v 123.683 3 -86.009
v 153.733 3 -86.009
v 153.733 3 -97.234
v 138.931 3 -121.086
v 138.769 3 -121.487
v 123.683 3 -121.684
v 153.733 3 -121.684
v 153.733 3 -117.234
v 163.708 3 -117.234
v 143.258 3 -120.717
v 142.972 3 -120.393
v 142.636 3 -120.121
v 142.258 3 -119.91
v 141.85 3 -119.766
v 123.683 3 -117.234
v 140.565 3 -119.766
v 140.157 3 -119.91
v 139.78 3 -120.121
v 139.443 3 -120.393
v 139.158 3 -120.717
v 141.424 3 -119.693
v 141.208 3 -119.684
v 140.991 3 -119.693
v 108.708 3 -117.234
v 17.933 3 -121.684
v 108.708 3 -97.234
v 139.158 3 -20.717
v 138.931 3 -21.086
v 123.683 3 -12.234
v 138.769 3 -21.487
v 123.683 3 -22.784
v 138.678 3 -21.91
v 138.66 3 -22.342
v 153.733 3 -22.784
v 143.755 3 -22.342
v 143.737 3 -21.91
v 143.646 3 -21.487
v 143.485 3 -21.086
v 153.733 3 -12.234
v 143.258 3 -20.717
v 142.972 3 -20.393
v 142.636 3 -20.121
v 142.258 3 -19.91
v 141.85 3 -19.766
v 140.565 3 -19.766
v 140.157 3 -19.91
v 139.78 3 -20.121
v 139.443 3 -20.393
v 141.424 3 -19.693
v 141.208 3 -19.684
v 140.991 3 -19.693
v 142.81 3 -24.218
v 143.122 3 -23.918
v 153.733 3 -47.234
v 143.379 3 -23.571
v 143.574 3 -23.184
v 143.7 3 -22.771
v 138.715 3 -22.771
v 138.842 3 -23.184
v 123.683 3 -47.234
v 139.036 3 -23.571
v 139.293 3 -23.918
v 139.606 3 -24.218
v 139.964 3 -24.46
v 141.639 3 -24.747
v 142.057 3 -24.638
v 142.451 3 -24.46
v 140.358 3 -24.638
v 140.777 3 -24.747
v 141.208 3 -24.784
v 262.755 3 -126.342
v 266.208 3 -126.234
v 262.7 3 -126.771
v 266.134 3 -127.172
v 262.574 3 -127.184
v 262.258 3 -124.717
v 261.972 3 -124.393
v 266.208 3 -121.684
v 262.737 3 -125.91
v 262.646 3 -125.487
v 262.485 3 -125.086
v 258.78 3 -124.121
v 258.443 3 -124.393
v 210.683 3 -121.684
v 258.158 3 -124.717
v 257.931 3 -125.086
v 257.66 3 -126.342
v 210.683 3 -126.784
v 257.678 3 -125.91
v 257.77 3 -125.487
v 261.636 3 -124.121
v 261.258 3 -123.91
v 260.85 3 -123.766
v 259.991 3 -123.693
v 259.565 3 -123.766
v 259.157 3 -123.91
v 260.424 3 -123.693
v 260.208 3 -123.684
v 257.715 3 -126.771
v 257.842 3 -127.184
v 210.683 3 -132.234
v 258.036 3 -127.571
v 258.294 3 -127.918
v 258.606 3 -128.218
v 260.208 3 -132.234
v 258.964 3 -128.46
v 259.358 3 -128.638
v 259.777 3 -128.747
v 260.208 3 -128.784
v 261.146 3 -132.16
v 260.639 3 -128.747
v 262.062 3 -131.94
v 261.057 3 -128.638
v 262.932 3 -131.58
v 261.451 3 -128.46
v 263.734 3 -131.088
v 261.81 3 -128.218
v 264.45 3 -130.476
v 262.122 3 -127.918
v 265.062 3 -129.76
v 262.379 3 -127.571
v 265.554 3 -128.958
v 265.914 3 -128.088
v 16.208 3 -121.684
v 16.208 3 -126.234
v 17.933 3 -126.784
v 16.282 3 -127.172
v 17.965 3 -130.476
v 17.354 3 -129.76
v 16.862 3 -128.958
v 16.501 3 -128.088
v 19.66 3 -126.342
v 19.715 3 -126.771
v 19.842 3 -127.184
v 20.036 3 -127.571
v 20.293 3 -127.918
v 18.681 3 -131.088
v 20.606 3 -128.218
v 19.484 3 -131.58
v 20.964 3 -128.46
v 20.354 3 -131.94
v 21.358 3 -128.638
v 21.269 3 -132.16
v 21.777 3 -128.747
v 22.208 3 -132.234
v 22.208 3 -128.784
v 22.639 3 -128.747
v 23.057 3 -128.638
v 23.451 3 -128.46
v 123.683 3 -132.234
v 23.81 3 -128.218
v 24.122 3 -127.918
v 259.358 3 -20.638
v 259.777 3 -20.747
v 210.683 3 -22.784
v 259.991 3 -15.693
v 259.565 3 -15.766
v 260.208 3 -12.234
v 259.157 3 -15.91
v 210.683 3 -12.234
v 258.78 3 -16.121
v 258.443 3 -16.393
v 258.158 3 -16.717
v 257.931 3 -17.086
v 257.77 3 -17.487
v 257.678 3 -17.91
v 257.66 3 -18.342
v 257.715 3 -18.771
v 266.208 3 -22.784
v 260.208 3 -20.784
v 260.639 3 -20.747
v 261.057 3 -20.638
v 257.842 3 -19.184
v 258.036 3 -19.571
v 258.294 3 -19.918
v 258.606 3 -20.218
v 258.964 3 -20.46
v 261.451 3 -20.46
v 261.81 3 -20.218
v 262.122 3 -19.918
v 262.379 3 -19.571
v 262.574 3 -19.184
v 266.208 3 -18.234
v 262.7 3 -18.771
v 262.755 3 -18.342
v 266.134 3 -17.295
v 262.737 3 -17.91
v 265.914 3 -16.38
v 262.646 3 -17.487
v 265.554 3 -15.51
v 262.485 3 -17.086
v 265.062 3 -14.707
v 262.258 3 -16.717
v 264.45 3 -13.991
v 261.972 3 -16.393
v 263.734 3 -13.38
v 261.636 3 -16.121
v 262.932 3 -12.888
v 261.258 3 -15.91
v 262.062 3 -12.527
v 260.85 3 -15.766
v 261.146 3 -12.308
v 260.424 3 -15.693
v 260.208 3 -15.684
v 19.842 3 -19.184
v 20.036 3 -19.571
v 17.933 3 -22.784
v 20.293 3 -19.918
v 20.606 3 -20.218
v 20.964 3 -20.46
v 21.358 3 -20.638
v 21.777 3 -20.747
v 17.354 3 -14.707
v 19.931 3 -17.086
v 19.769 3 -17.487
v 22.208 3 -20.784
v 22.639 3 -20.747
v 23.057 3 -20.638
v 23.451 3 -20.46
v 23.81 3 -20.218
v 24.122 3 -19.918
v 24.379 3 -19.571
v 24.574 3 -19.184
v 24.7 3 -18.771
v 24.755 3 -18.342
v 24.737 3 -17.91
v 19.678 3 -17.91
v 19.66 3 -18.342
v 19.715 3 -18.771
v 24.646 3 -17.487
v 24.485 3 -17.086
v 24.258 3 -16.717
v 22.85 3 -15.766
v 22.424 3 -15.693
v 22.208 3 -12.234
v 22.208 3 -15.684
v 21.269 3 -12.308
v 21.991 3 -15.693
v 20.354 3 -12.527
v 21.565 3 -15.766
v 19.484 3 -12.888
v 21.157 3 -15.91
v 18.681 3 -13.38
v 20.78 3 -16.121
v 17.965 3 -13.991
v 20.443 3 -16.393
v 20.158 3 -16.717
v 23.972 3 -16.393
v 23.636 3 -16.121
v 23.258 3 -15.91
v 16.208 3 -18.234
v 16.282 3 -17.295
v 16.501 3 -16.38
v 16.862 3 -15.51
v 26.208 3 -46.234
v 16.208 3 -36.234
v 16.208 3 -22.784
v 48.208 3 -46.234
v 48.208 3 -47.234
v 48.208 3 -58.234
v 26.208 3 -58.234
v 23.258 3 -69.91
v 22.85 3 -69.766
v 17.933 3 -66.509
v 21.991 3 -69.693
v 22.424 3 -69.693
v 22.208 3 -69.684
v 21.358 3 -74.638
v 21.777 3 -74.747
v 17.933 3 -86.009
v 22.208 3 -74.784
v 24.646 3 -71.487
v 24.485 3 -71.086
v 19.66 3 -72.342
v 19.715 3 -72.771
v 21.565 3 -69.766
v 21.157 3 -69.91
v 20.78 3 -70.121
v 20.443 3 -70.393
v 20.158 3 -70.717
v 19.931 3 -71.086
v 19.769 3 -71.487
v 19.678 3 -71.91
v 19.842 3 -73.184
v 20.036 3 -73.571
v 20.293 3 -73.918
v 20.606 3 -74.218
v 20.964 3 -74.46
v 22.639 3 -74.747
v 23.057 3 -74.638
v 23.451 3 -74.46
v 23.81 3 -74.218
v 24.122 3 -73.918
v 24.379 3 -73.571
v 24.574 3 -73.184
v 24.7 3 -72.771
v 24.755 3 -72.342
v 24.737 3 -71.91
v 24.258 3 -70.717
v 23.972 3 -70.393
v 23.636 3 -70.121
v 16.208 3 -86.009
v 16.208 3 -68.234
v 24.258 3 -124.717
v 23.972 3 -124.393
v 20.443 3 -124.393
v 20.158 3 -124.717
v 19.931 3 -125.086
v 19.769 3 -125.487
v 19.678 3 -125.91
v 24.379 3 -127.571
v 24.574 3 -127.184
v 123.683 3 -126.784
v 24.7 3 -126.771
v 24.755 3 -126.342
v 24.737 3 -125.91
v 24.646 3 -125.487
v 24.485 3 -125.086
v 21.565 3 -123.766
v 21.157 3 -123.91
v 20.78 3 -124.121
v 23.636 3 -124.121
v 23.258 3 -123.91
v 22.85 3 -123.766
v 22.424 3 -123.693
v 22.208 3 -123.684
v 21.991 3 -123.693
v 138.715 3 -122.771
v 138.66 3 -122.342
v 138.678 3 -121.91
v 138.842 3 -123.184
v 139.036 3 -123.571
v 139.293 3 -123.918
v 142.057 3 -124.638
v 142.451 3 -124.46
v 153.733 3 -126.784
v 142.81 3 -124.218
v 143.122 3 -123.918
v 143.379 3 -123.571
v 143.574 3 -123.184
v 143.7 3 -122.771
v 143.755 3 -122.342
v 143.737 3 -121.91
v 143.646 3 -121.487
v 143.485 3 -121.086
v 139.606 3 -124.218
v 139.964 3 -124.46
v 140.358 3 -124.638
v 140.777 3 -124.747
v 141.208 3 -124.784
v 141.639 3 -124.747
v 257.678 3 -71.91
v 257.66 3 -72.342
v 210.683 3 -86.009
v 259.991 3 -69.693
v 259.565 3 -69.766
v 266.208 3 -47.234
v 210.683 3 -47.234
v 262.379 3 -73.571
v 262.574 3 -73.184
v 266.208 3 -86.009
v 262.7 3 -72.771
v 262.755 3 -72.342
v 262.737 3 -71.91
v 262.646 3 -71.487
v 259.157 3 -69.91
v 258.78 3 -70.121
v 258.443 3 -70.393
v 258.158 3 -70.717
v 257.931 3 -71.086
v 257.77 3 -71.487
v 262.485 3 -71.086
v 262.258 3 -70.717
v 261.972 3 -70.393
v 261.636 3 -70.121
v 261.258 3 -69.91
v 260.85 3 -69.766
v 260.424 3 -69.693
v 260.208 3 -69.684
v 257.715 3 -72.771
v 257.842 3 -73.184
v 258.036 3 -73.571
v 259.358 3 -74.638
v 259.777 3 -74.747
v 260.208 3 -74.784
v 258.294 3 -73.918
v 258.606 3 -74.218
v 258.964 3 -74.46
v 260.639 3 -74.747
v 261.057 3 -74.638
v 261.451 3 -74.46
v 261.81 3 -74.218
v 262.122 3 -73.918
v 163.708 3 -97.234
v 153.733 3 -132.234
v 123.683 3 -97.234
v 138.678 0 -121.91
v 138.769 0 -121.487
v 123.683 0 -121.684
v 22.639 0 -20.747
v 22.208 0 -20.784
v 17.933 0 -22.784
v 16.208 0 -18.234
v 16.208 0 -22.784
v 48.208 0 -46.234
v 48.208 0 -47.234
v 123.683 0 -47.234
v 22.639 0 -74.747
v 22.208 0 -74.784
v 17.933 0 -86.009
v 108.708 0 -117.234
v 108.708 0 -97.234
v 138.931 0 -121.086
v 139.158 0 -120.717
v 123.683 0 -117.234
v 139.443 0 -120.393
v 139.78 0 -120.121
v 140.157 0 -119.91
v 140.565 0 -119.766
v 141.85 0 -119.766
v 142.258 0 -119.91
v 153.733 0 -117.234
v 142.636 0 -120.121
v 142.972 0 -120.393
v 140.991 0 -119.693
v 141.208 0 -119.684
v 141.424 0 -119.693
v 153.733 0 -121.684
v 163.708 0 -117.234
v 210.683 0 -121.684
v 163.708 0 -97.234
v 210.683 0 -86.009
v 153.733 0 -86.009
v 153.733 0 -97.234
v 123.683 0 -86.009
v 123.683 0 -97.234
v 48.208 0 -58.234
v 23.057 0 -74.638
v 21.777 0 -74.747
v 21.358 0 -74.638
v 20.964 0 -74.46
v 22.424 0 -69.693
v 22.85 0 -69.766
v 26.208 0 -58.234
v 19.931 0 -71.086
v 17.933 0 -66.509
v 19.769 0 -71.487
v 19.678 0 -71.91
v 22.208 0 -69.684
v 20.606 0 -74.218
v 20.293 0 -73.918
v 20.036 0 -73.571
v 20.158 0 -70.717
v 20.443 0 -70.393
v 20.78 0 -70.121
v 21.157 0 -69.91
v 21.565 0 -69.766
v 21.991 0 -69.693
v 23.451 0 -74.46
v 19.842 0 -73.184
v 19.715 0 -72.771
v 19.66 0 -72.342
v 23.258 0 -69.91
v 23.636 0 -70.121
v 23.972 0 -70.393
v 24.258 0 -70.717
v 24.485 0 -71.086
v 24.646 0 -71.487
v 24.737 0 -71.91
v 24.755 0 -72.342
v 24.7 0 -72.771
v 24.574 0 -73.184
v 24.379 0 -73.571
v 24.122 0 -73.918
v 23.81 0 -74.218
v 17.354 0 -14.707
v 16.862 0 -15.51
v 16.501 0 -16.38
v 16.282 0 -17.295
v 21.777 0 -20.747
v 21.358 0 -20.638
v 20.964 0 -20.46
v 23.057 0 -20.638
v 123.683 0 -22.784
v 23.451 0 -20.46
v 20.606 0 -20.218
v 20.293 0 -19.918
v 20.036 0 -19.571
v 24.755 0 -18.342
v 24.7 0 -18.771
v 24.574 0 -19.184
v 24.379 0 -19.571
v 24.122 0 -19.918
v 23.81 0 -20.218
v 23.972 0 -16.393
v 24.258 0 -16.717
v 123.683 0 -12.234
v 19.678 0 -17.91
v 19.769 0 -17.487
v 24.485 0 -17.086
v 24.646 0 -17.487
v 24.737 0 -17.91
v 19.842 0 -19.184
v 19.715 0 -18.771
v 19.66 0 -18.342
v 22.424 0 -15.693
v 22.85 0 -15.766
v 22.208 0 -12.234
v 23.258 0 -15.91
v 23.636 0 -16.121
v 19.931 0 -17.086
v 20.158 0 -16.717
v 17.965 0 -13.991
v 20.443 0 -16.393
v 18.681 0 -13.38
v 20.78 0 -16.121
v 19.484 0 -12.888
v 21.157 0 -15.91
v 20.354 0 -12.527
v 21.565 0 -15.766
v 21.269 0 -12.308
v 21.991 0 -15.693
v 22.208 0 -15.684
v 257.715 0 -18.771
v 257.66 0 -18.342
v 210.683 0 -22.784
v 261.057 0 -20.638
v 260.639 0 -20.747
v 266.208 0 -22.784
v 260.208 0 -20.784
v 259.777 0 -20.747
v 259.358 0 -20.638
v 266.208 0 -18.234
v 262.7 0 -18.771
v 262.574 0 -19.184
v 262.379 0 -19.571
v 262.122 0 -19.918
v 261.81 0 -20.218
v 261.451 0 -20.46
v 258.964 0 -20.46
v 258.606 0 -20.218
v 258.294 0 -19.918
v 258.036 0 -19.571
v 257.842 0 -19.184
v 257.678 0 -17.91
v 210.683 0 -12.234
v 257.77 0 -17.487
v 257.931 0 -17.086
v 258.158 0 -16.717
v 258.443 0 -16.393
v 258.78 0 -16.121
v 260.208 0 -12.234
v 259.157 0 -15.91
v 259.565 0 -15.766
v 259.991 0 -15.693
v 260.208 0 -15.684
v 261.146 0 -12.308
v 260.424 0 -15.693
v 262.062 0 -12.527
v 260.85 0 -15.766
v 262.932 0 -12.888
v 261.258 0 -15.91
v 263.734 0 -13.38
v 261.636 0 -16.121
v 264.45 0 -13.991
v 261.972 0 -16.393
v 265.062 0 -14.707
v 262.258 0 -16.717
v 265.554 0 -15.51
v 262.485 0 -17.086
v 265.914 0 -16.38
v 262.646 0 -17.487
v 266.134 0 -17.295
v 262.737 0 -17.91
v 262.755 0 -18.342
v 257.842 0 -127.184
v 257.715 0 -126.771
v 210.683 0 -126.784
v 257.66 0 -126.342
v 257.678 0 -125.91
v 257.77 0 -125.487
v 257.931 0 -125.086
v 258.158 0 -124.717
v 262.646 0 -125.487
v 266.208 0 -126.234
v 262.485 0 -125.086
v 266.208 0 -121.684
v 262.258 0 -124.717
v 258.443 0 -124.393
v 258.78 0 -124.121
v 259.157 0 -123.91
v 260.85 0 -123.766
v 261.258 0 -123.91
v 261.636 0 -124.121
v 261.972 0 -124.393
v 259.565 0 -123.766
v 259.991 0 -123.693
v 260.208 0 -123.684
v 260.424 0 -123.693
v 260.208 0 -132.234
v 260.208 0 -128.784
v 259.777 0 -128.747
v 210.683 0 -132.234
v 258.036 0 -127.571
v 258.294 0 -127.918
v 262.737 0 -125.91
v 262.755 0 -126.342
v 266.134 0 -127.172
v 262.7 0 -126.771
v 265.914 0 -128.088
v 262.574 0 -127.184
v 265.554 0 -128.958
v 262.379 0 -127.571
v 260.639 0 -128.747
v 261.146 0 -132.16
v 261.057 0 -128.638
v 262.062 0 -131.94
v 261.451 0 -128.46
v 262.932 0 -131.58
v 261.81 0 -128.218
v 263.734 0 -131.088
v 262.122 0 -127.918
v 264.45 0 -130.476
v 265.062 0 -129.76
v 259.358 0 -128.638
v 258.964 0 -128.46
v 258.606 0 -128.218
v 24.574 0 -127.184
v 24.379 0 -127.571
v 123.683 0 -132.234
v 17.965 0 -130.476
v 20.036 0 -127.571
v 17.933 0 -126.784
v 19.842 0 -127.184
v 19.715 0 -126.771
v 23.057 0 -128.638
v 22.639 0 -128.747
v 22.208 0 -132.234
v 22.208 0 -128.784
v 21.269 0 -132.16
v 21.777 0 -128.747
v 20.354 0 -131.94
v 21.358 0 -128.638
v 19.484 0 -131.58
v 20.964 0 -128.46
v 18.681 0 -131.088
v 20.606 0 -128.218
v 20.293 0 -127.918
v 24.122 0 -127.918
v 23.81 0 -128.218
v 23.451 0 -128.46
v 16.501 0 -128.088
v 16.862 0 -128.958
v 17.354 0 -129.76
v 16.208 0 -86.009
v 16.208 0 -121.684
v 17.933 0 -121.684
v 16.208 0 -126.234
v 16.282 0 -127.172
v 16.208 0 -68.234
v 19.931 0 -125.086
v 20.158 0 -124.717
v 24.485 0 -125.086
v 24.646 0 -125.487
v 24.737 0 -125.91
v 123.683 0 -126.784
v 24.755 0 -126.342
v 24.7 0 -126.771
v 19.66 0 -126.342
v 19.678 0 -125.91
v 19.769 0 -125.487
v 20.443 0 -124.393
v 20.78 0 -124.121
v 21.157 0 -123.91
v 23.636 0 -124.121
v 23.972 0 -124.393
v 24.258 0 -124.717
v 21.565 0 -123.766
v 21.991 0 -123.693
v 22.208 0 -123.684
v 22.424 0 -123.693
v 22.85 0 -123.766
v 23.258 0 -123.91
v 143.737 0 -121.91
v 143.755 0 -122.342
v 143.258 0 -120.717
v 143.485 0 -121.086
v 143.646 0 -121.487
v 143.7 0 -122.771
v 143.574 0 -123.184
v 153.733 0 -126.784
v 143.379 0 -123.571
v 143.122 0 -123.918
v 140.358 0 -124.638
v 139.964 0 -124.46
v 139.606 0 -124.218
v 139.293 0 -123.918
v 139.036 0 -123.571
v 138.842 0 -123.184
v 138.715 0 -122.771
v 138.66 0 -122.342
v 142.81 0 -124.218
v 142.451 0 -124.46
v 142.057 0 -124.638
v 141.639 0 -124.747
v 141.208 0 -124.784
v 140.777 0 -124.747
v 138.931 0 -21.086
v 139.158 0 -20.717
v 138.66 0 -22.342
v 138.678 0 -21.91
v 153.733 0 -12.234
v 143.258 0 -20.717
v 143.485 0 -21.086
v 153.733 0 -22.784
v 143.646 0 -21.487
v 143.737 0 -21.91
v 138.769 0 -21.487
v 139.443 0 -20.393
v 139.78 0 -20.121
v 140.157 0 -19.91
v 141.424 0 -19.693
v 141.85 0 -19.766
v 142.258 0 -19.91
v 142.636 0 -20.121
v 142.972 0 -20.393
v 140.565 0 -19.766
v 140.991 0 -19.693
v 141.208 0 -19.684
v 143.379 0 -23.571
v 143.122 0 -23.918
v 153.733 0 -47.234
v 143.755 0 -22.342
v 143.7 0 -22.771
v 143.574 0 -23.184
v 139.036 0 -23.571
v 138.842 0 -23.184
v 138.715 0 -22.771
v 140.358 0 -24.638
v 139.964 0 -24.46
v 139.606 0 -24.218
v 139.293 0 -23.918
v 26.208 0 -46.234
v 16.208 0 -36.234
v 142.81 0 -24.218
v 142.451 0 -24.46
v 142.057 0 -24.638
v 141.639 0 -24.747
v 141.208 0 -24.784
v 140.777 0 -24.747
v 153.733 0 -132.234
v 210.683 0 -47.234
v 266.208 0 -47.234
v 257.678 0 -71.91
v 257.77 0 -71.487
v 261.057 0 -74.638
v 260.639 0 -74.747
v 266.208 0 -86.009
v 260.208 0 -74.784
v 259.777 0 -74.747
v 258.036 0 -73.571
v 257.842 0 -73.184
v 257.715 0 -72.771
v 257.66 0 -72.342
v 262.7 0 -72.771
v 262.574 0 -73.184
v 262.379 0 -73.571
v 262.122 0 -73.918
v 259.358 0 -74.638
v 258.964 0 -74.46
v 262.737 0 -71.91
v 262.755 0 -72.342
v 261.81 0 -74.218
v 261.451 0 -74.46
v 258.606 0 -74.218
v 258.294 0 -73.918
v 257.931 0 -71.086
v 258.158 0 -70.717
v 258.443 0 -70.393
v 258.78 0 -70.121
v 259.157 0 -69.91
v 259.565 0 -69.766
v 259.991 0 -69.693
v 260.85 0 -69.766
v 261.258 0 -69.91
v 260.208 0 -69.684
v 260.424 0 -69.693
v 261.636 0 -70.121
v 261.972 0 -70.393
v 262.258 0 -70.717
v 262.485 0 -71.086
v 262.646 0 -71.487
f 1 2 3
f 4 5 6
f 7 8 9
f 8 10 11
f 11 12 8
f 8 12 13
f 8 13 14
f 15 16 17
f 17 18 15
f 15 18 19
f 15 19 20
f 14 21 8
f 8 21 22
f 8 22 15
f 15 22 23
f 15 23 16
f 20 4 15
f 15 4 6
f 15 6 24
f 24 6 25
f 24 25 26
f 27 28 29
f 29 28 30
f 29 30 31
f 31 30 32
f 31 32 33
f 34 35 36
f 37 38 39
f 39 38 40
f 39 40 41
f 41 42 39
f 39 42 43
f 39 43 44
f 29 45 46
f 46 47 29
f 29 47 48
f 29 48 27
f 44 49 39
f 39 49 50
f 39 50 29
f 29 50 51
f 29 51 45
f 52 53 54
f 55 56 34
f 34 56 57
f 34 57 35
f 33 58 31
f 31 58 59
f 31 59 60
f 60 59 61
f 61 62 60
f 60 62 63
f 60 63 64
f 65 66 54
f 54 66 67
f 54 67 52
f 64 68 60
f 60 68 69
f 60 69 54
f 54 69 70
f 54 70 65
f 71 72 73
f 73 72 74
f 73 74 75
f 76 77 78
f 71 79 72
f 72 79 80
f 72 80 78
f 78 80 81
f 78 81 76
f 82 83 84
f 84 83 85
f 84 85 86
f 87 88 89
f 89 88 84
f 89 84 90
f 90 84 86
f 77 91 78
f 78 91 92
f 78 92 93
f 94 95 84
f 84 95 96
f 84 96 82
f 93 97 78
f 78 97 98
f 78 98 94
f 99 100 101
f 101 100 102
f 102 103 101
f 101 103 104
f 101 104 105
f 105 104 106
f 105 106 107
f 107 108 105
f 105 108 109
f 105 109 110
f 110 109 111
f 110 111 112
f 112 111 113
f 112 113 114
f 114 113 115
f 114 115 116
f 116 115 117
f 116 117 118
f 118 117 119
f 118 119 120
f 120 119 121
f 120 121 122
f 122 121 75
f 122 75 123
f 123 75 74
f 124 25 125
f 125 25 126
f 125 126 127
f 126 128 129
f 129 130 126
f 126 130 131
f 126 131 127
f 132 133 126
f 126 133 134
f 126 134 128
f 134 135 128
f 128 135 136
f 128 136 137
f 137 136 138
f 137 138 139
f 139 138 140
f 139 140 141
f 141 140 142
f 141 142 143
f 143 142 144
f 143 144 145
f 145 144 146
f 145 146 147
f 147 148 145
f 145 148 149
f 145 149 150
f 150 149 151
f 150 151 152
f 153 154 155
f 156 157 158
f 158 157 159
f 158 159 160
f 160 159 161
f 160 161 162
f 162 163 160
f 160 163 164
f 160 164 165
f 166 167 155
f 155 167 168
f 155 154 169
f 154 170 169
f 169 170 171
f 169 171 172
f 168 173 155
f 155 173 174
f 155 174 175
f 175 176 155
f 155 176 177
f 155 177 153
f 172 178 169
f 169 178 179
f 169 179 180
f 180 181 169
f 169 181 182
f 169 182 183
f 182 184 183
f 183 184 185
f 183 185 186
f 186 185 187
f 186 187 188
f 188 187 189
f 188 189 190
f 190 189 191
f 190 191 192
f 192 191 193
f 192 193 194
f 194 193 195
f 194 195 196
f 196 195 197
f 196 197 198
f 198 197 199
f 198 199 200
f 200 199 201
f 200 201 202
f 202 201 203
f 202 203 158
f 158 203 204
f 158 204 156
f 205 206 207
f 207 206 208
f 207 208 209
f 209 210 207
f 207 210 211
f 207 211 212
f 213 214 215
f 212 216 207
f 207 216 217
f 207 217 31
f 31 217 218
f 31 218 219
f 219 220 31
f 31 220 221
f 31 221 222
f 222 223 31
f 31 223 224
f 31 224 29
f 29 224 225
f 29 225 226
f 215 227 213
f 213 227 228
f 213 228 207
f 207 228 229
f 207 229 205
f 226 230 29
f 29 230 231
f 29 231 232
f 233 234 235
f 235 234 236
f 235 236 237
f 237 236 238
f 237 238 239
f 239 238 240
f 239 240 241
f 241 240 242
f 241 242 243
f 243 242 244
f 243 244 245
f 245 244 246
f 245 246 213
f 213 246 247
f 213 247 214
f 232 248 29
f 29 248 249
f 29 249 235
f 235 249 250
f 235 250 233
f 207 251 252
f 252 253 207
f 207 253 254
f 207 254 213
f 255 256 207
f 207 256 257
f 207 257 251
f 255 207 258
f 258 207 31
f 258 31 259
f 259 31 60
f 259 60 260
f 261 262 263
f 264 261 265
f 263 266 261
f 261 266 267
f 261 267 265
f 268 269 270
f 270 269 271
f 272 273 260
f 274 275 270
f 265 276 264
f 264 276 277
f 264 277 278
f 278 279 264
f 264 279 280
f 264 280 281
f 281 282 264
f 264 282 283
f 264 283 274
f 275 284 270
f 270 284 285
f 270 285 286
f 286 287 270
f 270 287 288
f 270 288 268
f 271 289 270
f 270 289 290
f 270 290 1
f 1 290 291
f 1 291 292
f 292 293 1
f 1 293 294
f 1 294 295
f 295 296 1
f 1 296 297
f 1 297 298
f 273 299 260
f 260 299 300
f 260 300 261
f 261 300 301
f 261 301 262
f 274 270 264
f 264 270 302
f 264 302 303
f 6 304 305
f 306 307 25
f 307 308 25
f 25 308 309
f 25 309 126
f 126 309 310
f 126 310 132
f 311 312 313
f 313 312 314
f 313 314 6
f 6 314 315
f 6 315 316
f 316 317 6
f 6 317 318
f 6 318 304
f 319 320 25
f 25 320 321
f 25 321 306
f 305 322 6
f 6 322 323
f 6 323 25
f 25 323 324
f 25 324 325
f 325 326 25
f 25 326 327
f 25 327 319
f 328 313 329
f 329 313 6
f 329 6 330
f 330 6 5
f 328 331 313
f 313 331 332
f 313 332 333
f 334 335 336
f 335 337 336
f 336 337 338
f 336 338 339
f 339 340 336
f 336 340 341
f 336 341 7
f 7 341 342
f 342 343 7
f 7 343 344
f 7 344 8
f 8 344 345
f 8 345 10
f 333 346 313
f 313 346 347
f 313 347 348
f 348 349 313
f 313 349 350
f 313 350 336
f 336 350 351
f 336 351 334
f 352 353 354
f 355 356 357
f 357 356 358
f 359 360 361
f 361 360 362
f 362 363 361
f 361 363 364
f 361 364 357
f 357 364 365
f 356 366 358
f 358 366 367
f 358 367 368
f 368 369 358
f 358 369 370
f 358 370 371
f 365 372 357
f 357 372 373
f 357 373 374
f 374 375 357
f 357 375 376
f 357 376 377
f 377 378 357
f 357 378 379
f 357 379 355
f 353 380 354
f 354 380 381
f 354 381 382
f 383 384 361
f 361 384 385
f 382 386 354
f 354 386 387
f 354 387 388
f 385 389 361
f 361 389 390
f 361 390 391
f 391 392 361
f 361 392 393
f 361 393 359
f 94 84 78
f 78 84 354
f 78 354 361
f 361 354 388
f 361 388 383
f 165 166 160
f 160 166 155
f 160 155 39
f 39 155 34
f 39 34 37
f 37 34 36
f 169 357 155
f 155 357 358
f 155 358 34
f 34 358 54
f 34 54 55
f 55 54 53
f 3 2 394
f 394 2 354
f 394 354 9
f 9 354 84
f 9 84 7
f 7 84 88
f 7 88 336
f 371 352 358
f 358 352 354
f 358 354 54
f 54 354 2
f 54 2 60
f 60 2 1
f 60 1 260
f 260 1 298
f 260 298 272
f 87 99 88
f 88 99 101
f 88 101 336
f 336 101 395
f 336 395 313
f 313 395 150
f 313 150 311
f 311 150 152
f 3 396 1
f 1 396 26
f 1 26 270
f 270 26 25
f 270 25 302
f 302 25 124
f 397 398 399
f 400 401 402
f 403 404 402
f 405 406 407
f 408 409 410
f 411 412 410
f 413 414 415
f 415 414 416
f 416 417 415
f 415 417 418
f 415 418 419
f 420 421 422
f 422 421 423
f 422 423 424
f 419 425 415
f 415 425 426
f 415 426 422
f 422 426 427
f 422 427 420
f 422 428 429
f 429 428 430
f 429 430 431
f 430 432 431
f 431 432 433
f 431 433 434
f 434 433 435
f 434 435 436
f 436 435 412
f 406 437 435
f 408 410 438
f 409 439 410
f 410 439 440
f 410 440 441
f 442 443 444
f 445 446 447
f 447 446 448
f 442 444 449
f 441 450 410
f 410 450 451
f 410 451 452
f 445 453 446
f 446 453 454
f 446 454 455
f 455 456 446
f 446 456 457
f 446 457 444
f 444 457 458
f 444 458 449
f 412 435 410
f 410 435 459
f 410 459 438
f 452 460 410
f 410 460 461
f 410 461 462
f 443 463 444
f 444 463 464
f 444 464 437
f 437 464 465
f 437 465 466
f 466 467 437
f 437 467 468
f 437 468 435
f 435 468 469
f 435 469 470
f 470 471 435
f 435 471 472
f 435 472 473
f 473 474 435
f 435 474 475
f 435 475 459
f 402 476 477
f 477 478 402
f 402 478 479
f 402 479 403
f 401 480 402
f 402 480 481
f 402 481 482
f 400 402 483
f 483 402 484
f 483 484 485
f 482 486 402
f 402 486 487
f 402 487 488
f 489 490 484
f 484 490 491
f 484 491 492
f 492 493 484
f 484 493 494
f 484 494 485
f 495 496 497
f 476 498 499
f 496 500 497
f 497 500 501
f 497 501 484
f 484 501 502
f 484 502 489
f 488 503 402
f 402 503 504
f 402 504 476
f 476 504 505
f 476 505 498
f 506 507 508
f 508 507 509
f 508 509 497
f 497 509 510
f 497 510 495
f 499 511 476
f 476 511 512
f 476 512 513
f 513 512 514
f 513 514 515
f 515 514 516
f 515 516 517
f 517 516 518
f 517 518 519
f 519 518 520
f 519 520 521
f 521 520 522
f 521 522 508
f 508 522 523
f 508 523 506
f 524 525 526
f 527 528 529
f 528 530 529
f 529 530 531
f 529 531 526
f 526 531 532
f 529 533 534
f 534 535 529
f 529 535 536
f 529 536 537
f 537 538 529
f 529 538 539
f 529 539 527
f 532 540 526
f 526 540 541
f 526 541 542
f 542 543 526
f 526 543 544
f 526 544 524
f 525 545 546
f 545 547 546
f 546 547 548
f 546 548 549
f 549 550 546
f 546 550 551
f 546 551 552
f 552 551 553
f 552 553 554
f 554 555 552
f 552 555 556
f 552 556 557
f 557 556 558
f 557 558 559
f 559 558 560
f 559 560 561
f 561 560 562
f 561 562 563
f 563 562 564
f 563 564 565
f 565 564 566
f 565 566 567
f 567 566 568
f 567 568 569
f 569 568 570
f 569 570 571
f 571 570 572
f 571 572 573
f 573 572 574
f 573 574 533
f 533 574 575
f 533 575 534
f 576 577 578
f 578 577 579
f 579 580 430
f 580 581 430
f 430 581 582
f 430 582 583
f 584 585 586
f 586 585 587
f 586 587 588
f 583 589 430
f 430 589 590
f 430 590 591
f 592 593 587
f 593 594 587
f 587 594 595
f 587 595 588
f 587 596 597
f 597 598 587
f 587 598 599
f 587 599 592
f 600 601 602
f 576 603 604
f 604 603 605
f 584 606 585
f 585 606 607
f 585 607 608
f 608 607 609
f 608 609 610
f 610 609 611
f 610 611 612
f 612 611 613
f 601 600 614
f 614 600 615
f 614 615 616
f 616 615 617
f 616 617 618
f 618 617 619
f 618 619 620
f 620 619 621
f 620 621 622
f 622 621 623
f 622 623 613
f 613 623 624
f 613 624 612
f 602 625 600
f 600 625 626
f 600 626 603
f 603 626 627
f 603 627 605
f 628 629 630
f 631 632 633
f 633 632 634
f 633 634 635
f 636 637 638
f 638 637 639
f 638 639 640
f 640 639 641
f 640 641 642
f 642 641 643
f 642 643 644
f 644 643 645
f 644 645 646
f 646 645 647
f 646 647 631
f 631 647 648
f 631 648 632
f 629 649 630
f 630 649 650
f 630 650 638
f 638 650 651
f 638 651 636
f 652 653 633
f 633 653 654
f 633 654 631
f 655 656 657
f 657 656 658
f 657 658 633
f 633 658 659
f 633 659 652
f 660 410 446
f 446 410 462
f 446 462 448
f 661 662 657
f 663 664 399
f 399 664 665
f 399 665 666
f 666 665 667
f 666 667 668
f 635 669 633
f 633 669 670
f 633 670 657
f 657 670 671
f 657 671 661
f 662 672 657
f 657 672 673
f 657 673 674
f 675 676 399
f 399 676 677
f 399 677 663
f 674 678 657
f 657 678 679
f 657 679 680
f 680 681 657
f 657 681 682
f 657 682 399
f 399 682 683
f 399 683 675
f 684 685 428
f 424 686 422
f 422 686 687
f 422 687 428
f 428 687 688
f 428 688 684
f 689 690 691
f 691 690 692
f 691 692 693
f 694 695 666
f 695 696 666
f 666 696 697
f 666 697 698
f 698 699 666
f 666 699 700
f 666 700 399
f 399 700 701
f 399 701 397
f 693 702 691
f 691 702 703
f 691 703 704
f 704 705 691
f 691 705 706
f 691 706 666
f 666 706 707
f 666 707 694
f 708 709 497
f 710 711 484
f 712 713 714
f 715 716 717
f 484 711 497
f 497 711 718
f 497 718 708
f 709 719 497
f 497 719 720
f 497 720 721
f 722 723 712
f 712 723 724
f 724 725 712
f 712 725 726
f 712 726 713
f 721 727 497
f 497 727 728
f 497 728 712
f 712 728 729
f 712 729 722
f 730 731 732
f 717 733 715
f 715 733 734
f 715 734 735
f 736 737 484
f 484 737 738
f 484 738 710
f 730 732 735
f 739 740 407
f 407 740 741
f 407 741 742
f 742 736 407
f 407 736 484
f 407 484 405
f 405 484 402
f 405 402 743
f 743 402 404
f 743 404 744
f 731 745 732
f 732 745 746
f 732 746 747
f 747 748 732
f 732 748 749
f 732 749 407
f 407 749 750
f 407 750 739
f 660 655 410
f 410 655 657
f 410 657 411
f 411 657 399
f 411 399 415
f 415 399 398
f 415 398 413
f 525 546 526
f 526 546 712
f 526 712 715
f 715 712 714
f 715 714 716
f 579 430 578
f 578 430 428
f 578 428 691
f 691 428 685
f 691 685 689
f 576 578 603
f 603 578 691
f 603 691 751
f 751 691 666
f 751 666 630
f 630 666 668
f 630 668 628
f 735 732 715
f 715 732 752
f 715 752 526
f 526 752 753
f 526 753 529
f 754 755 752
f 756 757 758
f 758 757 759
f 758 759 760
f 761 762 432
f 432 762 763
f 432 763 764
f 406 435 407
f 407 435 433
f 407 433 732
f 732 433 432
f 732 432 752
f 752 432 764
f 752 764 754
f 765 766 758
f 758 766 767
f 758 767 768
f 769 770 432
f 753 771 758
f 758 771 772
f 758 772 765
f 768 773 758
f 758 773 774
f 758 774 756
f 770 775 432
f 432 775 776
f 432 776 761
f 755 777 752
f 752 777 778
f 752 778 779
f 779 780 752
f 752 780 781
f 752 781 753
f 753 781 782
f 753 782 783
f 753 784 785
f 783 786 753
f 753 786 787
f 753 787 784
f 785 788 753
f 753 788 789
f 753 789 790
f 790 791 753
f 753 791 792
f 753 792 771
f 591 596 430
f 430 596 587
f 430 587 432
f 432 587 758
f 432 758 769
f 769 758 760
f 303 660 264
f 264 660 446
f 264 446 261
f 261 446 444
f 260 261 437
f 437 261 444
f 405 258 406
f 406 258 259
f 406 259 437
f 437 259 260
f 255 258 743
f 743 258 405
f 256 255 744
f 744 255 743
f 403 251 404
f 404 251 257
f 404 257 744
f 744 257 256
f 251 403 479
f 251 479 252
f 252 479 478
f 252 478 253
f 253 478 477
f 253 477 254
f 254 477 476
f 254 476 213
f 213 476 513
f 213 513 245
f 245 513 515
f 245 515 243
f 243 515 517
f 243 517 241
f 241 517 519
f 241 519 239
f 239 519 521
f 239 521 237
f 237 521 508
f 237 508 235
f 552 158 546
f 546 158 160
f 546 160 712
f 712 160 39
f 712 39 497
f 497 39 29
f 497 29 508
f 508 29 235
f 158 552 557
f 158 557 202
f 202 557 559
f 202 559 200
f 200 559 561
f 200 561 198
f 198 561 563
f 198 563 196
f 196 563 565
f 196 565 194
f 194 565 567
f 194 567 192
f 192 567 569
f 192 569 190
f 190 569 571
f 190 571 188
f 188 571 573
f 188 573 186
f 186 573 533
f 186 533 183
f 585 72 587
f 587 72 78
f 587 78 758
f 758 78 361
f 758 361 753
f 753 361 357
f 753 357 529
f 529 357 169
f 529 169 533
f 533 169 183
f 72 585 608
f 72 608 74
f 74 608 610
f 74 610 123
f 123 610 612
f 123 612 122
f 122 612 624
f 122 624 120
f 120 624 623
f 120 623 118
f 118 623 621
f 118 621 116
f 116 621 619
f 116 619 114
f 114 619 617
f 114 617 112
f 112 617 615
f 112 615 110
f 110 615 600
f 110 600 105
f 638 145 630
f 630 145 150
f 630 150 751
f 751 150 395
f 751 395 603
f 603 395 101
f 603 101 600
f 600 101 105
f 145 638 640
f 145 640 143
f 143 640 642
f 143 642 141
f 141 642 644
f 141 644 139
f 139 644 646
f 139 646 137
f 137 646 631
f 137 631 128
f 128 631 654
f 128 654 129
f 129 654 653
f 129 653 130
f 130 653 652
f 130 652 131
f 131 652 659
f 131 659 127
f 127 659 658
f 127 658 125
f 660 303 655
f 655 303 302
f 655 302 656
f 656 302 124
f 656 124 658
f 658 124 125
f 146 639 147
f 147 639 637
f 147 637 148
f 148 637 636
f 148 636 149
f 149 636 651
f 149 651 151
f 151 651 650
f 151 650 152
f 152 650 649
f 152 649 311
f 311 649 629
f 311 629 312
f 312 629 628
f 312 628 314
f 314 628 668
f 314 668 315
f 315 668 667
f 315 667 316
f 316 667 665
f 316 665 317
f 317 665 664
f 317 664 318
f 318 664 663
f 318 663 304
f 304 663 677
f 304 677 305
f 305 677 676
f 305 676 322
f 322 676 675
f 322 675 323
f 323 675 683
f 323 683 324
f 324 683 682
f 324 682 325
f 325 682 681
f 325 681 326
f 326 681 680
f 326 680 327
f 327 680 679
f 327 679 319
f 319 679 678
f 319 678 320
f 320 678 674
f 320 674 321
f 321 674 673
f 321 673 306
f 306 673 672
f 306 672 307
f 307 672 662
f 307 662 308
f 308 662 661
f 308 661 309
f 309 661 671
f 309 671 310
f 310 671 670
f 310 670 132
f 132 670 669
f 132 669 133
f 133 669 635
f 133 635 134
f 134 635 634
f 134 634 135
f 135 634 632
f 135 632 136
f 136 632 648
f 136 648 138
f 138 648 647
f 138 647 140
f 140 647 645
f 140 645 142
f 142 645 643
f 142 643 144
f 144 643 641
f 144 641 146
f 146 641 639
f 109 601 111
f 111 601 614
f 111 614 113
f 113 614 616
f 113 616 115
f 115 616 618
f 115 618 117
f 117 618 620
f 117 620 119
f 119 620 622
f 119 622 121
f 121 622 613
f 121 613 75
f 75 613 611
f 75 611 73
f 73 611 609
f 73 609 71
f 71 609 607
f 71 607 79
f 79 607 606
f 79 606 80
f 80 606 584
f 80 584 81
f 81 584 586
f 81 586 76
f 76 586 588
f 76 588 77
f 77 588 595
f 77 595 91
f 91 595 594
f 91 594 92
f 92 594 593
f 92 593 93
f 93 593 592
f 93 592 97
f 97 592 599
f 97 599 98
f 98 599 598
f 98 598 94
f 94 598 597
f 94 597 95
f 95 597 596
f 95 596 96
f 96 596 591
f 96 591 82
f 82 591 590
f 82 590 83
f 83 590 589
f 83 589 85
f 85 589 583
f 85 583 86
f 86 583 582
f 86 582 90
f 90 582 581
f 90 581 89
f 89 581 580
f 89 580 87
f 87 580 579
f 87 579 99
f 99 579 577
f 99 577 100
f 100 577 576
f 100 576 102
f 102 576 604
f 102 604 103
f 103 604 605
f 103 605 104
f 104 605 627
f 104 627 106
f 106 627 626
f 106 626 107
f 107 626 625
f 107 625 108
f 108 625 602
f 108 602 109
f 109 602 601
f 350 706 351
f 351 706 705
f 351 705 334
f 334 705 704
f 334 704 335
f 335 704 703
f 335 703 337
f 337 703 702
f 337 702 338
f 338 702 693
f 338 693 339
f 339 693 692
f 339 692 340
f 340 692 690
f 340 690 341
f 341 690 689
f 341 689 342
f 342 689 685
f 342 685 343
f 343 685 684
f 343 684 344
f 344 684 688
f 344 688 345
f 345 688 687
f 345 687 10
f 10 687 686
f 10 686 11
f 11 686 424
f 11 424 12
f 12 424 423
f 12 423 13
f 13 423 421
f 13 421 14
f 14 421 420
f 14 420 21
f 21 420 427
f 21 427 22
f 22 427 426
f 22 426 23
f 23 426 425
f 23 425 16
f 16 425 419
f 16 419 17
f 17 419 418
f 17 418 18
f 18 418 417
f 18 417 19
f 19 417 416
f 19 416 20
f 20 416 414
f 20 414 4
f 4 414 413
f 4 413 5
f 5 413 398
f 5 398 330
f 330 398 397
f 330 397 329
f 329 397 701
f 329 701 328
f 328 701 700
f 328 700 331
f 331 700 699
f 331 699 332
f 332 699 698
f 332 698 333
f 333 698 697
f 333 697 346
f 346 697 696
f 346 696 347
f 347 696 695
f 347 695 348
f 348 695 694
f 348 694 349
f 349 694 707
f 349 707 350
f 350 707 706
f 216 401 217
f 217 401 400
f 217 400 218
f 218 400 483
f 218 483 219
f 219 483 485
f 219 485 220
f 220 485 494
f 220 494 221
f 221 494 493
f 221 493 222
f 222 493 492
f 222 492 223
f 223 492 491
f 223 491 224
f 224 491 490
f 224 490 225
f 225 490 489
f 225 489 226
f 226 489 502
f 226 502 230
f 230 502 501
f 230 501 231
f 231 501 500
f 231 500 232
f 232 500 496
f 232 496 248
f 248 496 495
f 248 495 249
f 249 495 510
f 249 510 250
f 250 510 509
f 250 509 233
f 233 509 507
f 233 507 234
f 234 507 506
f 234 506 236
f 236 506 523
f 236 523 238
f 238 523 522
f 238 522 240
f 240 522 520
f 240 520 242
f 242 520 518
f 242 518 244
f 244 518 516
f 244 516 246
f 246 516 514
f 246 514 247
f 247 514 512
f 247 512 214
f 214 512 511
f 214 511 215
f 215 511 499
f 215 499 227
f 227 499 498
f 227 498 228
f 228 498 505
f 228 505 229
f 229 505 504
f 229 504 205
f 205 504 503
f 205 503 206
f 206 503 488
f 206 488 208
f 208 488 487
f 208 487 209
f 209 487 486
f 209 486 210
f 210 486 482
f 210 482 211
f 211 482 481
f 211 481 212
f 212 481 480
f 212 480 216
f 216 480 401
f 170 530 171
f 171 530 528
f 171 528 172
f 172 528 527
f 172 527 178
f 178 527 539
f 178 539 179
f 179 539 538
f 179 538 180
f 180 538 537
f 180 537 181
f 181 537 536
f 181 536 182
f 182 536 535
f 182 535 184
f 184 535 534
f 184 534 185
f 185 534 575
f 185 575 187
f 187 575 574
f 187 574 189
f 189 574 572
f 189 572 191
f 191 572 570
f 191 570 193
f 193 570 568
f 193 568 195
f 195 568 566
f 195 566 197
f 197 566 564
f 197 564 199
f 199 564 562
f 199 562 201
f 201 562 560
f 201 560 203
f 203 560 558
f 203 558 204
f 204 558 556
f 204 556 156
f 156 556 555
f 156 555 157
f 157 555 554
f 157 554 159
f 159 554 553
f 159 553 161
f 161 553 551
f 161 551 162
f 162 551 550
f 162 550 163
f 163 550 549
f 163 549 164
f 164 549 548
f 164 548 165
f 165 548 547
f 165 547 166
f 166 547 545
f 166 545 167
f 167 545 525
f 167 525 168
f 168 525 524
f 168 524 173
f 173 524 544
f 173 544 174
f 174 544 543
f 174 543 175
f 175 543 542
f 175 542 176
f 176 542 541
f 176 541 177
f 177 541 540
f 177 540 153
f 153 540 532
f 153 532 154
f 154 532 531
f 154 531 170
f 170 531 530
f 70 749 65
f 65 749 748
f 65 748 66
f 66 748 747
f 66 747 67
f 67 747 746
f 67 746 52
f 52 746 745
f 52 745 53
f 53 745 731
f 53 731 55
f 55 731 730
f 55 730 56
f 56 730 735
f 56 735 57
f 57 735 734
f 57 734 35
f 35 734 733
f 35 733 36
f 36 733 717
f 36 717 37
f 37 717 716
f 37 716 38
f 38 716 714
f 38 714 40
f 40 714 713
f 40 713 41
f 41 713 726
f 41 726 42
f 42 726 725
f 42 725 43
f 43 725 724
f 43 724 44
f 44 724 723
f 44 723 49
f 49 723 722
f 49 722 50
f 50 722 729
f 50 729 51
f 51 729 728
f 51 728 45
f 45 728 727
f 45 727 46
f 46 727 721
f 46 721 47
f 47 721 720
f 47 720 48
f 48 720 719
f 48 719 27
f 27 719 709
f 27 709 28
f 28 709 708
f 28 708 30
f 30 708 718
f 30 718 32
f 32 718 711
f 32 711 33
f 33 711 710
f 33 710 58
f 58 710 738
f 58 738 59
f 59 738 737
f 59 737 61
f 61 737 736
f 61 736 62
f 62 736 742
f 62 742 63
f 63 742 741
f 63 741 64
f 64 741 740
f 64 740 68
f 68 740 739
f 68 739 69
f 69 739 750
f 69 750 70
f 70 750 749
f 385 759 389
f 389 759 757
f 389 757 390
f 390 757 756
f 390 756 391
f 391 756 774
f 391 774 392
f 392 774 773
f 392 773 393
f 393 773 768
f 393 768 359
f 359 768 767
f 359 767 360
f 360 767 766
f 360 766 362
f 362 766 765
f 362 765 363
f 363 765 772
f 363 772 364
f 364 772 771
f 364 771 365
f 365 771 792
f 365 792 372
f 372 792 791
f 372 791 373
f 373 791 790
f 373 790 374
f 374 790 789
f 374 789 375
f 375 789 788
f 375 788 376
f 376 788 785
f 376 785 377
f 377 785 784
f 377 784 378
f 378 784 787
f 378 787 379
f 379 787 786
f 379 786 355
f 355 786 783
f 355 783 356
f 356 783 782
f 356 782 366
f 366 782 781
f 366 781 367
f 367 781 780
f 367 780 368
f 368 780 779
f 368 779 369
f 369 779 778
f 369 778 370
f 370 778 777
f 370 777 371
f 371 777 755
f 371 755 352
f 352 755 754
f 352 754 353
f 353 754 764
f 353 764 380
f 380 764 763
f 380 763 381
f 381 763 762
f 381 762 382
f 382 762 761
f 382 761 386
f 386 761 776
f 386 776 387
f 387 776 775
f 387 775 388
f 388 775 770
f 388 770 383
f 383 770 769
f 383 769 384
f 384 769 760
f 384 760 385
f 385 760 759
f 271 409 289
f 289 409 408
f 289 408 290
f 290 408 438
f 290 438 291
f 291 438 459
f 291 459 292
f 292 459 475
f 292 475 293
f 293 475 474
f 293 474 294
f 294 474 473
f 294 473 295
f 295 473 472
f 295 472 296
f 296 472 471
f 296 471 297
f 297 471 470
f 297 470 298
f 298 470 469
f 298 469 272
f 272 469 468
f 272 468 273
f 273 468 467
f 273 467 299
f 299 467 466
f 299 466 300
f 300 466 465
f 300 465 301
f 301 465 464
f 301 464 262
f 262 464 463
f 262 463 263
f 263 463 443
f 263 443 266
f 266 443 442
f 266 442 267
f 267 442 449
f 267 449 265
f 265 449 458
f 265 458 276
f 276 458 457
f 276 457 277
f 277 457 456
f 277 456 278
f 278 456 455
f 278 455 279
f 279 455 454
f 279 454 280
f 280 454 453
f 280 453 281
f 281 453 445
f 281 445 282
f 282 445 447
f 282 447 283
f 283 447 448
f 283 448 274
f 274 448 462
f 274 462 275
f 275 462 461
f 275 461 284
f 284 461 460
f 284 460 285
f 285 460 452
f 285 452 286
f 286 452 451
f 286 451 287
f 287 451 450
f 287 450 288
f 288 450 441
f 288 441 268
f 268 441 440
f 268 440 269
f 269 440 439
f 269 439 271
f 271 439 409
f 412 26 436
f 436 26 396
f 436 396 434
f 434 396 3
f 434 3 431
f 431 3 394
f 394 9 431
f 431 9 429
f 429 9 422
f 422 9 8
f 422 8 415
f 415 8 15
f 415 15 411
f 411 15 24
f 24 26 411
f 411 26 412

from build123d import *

# Parameters (mm, degrees)
SKETCH_1_R      = 2.55
SKETCH_1_W      = 55
SKETCH_1_H      = 20
EXTRUDE_1_DEPTH = 3


with BuildPart() as part:
    # 草图1 → 凸台-拉伸1 (new body)
    with BuildSketch(Plane(origin=(0, 0, 0), x_dir=(1, 0, 0), z_dir=(0, 1, 0))):
        with BuildLine():
            Line((16.20771131, 68.233643966), (16.20771131, 126.233643966))
            ThreePointArc((16.20771131, 126.233643966), (17.965070623, 130.476284653), (22.20771131, 132.233643966))
            Line((22.20771131, 132.233643966), (260.20771131, 132.233643966))
            ThreePointArc((260.20771131, 132.233643966), (264.450351998, 130.476284653), (266.20771131, 126.233643966))
            Line((266.20771131, 126.233643966), (266.20771131, 18.233643966))
            ThreePointArc((266.20771131, 18.233643966), (264.450351998, 13.991003279), (260.20771131, 12.233643966))
            Line((260.20771131, 12.233643966), (22.20771131, 12.233643966))
            ThreePointArc((22.20771131, 12.233643966), (17.965070623, 13.991003279), (16.20771131, 18.233643966))
            Line((16.20771131, 18.233643966), (16.20771131, 36.233643966))
            Line((16.20771131, 36.233643966), (26.20771131, 46.233643966))
            Line((26.20771131, 46.233643966), (48.20771131, 46.233643966))
            Line((48.20771131, 46.233643966), (48.20771131, 58.233643966))
            Line((48.20771131, 58.233643966), (26.20771131, 58.233643966))
            Line((26.20771131, 58.233643966), (16.20771131, 68.233643966))
        make_face()
        with Locations(Location((22.20771131, 126.233643966, 0), (0, 0, 270))):
            Circle(SKETCH_1_R, mode=Mode.SUBTRACT)
        with Locations(Location((260.20771131, 126.233643966, 0), (0, 0, 270))):
            Circle(SKETCH_1_R, mode=Mode.SUBTRACT)
        with Locations(Location((141.20771131, 122.233643966, 0), (0, 0, 270))):
            Circle(SKETCH_1_R, mode=Mode.SUBTRACT)
        with Locations(Location((22.20771131, 18.233643966, 0), (0, 0, 270))):
            Circle(SKETCH_1_R, mode=Mode.SUBTRACT)
        with Locations(Location((260.20771131, 18.233643966, 0), (0, 0, 270))):
            Circle(SKETCH_1_R, mode=Mode.SUBTRACT)
        with Locations(Location((141.20771131, 22.233643966, 0), (0, 0, 270))):
            Circle(SKETCH_1_R, mode=Mode.SUBTRACT)
        with Locations(Location((260.20771131, 72.233643966, 0), (0, 0, 270))):
            Circle(SKETCH_1_R, mode=Mode.SUBTRACT)
        with Locations(Location((22.20771131, 72.233643966, 0), (0, 0, 270))):
            Circle(SKETCH_1_R, mode=Mode.SUBTRACT)
        with Locations((136.20771131, 107.233643966)):
            Rectangle(SKETCH_1_W, SKETCH_1_H, mode=Mode.SUBTRACT)
    extrude(amount=EXTRUDE_1_DEPTH)


solid = part.part
